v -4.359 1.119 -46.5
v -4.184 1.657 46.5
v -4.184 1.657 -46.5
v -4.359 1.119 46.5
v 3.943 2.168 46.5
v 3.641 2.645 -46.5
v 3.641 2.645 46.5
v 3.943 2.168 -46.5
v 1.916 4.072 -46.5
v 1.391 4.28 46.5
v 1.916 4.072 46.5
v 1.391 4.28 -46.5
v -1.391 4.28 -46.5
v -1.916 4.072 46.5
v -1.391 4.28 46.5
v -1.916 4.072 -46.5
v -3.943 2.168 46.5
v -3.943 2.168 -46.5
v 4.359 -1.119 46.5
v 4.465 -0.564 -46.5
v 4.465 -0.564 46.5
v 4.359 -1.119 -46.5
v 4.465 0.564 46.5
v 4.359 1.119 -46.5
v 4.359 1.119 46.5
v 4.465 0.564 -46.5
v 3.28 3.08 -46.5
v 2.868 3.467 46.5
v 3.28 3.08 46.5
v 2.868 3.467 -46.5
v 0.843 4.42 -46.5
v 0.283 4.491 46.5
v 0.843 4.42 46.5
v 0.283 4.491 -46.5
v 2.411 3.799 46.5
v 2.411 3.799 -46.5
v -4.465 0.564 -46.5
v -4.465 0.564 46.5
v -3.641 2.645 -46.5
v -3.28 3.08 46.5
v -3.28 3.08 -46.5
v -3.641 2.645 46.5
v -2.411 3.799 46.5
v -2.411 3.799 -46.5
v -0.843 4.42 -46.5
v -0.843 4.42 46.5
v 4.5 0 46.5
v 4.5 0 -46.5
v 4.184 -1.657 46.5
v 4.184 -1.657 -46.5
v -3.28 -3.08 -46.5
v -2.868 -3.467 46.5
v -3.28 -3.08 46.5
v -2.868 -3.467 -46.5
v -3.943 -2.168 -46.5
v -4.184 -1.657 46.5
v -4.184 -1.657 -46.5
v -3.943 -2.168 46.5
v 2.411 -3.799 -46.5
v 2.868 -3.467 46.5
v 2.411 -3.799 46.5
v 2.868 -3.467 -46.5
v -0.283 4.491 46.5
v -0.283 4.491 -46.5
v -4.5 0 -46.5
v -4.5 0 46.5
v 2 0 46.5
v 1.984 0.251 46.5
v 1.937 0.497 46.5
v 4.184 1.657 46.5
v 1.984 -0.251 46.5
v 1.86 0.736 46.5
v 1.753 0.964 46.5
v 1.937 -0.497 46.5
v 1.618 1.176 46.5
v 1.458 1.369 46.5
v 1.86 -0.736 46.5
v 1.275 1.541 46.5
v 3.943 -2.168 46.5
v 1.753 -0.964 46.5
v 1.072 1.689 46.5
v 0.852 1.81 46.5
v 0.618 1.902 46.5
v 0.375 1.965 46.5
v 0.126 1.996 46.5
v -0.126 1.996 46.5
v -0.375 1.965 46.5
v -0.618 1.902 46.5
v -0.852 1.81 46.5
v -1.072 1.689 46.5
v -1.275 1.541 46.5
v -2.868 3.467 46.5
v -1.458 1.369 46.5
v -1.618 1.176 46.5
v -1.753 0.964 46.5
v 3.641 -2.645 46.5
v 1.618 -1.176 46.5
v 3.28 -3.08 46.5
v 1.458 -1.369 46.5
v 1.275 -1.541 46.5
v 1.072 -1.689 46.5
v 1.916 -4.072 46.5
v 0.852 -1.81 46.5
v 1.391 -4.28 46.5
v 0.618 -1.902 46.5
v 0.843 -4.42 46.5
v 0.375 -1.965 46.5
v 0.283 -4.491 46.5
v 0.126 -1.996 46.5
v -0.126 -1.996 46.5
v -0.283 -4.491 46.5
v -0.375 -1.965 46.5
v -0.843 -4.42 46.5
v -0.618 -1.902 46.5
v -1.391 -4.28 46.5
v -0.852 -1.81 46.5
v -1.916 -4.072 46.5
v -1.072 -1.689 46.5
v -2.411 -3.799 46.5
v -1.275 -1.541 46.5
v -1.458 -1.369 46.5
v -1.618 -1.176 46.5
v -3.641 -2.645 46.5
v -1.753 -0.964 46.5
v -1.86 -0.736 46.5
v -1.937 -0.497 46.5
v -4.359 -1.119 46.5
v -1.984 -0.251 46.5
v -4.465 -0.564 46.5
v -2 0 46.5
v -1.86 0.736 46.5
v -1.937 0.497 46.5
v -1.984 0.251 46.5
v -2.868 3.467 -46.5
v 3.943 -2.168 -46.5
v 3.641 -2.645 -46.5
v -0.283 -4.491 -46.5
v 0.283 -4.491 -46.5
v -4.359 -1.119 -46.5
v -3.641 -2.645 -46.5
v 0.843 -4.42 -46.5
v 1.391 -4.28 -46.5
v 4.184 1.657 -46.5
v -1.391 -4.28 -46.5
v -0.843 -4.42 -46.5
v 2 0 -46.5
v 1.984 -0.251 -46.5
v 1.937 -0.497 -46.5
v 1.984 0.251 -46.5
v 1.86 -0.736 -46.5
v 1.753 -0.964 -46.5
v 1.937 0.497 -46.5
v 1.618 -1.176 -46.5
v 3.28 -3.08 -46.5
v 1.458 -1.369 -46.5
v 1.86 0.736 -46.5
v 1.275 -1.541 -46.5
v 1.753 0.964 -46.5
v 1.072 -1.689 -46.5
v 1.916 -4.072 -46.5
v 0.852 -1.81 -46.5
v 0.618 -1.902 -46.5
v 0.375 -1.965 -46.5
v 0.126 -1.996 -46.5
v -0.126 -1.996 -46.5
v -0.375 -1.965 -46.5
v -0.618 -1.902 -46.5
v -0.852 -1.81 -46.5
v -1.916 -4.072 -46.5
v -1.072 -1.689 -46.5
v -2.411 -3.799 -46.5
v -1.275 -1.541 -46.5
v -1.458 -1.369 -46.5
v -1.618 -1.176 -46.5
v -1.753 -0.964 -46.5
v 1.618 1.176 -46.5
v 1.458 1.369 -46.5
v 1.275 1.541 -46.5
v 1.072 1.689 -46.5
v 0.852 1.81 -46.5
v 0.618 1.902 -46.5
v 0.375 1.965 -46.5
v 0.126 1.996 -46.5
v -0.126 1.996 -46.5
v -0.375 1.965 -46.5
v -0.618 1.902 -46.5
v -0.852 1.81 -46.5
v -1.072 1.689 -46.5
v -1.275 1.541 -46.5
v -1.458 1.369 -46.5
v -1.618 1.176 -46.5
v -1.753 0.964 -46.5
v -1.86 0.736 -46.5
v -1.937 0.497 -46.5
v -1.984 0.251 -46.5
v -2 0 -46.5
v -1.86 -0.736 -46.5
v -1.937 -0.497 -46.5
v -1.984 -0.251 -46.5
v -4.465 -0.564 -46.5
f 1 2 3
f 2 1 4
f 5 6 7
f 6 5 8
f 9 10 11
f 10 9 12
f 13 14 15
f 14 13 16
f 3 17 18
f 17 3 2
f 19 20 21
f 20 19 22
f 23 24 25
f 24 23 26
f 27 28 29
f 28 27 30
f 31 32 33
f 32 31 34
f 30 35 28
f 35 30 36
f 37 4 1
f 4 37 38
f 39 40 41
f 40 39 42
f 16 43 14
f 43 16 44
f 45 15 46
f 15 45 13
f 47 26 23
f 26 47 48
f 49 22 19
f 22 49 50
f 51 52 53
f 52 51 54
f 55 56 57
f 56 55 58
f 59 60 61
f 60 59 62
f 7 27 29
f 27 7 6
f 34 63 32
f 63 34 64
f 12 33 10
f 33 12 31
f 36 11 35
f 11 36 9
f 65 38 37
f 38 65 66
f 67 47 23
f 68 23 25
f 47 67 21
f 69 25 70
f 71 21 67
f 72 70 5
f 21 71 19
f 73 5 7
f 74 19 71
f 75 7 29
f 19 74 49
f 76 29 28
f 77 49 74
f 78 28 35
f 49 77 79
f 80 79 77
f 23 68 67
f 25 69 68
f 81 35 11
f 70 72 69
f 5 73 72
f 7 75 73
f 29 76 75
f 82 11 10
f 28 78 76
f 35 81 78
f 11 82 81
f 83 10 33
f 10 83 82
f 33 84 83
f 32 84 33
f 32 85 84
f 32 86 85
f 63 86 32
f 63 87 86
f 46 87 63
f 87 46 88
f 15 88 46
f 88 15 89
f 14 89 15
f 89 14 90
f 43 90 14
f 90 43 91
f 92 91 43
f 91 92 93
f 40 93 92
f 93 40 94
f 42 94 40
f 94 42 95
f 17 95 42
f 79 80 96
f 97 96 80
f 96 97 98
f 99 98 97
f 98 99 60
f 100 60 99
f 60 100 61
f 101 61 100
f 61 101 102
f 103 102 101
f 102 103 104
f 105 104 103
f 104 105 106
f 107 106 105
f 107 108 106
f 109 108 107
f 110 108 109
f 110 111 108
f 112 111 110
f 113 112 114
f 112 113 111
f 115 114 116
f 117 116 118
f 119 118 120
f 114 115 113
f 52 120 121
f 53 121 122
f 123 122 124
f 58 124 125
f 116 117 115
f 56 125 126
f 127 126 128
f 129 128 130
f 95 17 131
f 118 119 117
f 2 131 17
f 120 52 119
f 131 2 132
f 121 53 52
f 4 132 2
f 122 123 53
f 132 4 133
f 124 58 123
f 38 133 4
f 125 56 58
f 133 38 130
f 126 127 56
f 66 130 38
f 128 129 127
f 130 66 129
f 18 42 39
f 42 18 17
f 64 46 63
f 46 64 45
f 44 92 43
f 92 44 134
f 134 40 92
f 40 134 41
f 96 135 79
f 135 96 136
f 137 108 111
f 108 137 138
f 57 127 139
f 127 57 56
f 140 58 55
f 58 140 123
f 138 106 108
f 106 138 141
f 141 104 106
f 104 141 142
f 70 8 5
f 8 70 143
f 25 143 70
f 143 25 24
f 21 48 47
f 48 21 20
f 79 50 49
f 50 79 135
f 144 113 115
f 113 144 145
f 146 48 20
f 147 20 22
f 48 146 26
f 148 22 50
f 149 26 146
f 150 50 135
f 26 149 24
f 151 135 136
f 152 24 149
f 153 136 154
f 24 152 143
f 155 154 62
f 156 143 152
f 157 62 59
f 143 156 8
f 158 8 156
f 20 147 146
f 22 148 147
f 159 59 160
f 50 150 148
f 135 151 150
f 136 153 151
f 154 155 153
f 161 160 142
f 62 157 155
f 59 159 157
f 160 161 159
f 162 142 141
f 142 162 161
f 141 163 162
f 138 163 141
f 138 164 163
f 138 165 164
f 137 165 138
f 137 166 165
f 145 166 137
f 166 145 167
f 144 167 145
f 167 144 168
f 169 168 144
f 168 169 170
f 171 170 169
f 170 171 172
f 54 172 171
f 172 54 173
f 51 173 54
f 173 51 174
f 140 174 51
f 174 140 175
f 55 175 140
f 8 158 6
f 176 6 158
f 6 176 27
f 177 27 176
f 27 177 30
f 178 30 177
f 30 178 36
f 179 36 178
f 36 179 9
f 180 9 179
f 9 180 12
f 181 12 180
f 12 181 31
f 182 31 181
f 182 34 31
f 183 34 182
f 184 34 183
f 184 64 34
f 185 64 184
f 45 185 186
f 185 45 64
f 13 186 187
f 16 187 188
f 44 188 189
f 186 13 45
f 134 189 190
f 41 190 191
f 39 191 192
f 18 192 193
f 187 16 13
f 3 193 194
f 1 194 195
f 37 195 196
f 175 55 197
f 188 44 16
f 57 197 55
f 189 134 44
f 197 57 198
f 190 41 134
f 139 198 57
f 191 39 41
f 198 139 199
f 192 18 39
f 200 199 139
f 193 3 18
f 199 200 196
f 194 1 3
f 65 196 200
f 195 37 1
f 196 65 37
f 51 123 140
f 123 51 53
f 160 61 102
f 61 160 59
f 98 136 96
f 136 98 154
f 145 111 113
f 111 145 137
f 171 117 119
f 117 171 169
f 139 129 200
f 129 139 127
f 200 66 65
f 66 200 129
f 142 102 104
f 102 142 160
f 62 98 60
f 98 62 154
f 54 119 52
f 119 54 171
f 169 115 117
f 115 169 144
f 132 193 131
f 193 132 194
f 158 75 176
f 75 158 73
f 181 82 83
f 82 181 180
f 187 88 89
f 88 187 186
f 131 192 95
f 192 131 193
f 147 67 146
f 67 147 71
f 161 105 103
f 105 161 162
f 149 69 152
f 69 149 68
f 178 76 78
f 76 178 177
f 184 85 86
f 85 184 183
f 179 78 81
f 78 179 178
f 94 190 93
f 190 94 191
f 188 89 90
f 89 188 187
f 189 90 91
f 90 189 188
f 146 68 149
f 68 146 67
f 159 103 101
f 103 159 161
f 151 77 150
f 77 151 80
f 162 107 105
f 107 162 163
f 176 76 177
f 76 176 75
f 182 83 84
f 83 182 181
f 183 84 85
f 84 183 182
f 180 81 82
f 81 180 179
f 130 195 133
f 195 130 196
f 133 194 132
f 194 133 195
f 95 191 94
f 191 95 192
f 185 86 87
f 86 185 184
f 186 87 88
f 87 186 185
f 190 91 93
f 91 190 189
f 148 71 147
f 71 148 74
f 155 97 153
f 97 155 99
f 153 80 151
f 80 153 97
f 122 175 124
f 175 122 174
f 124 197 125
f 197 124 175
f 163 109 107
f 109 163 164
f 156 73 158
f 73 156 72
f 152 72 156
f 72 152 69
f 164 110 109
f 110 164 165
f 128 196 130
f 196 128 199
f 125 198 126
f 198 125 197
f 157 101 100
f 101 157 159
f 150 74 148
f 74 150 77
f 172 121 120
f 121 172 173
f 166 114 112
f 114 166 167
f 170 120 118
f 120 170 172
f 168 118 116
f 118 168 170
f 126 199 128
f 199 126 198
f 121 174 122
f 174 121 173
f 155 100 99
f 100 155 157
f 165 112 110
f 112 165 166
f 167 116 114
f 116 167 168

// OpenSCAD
$fn = 50;


difference() {
	union() {
		translate(v = [0, 0, -46.5000000000]) {
			cylinder(h = 93, r = 4.5000000000);
		}
	}
	union() {
		translate(v = [0, 0, -100.0000000000]) {
			cylinder(h = 200, r = 2);
		}
	}
}
